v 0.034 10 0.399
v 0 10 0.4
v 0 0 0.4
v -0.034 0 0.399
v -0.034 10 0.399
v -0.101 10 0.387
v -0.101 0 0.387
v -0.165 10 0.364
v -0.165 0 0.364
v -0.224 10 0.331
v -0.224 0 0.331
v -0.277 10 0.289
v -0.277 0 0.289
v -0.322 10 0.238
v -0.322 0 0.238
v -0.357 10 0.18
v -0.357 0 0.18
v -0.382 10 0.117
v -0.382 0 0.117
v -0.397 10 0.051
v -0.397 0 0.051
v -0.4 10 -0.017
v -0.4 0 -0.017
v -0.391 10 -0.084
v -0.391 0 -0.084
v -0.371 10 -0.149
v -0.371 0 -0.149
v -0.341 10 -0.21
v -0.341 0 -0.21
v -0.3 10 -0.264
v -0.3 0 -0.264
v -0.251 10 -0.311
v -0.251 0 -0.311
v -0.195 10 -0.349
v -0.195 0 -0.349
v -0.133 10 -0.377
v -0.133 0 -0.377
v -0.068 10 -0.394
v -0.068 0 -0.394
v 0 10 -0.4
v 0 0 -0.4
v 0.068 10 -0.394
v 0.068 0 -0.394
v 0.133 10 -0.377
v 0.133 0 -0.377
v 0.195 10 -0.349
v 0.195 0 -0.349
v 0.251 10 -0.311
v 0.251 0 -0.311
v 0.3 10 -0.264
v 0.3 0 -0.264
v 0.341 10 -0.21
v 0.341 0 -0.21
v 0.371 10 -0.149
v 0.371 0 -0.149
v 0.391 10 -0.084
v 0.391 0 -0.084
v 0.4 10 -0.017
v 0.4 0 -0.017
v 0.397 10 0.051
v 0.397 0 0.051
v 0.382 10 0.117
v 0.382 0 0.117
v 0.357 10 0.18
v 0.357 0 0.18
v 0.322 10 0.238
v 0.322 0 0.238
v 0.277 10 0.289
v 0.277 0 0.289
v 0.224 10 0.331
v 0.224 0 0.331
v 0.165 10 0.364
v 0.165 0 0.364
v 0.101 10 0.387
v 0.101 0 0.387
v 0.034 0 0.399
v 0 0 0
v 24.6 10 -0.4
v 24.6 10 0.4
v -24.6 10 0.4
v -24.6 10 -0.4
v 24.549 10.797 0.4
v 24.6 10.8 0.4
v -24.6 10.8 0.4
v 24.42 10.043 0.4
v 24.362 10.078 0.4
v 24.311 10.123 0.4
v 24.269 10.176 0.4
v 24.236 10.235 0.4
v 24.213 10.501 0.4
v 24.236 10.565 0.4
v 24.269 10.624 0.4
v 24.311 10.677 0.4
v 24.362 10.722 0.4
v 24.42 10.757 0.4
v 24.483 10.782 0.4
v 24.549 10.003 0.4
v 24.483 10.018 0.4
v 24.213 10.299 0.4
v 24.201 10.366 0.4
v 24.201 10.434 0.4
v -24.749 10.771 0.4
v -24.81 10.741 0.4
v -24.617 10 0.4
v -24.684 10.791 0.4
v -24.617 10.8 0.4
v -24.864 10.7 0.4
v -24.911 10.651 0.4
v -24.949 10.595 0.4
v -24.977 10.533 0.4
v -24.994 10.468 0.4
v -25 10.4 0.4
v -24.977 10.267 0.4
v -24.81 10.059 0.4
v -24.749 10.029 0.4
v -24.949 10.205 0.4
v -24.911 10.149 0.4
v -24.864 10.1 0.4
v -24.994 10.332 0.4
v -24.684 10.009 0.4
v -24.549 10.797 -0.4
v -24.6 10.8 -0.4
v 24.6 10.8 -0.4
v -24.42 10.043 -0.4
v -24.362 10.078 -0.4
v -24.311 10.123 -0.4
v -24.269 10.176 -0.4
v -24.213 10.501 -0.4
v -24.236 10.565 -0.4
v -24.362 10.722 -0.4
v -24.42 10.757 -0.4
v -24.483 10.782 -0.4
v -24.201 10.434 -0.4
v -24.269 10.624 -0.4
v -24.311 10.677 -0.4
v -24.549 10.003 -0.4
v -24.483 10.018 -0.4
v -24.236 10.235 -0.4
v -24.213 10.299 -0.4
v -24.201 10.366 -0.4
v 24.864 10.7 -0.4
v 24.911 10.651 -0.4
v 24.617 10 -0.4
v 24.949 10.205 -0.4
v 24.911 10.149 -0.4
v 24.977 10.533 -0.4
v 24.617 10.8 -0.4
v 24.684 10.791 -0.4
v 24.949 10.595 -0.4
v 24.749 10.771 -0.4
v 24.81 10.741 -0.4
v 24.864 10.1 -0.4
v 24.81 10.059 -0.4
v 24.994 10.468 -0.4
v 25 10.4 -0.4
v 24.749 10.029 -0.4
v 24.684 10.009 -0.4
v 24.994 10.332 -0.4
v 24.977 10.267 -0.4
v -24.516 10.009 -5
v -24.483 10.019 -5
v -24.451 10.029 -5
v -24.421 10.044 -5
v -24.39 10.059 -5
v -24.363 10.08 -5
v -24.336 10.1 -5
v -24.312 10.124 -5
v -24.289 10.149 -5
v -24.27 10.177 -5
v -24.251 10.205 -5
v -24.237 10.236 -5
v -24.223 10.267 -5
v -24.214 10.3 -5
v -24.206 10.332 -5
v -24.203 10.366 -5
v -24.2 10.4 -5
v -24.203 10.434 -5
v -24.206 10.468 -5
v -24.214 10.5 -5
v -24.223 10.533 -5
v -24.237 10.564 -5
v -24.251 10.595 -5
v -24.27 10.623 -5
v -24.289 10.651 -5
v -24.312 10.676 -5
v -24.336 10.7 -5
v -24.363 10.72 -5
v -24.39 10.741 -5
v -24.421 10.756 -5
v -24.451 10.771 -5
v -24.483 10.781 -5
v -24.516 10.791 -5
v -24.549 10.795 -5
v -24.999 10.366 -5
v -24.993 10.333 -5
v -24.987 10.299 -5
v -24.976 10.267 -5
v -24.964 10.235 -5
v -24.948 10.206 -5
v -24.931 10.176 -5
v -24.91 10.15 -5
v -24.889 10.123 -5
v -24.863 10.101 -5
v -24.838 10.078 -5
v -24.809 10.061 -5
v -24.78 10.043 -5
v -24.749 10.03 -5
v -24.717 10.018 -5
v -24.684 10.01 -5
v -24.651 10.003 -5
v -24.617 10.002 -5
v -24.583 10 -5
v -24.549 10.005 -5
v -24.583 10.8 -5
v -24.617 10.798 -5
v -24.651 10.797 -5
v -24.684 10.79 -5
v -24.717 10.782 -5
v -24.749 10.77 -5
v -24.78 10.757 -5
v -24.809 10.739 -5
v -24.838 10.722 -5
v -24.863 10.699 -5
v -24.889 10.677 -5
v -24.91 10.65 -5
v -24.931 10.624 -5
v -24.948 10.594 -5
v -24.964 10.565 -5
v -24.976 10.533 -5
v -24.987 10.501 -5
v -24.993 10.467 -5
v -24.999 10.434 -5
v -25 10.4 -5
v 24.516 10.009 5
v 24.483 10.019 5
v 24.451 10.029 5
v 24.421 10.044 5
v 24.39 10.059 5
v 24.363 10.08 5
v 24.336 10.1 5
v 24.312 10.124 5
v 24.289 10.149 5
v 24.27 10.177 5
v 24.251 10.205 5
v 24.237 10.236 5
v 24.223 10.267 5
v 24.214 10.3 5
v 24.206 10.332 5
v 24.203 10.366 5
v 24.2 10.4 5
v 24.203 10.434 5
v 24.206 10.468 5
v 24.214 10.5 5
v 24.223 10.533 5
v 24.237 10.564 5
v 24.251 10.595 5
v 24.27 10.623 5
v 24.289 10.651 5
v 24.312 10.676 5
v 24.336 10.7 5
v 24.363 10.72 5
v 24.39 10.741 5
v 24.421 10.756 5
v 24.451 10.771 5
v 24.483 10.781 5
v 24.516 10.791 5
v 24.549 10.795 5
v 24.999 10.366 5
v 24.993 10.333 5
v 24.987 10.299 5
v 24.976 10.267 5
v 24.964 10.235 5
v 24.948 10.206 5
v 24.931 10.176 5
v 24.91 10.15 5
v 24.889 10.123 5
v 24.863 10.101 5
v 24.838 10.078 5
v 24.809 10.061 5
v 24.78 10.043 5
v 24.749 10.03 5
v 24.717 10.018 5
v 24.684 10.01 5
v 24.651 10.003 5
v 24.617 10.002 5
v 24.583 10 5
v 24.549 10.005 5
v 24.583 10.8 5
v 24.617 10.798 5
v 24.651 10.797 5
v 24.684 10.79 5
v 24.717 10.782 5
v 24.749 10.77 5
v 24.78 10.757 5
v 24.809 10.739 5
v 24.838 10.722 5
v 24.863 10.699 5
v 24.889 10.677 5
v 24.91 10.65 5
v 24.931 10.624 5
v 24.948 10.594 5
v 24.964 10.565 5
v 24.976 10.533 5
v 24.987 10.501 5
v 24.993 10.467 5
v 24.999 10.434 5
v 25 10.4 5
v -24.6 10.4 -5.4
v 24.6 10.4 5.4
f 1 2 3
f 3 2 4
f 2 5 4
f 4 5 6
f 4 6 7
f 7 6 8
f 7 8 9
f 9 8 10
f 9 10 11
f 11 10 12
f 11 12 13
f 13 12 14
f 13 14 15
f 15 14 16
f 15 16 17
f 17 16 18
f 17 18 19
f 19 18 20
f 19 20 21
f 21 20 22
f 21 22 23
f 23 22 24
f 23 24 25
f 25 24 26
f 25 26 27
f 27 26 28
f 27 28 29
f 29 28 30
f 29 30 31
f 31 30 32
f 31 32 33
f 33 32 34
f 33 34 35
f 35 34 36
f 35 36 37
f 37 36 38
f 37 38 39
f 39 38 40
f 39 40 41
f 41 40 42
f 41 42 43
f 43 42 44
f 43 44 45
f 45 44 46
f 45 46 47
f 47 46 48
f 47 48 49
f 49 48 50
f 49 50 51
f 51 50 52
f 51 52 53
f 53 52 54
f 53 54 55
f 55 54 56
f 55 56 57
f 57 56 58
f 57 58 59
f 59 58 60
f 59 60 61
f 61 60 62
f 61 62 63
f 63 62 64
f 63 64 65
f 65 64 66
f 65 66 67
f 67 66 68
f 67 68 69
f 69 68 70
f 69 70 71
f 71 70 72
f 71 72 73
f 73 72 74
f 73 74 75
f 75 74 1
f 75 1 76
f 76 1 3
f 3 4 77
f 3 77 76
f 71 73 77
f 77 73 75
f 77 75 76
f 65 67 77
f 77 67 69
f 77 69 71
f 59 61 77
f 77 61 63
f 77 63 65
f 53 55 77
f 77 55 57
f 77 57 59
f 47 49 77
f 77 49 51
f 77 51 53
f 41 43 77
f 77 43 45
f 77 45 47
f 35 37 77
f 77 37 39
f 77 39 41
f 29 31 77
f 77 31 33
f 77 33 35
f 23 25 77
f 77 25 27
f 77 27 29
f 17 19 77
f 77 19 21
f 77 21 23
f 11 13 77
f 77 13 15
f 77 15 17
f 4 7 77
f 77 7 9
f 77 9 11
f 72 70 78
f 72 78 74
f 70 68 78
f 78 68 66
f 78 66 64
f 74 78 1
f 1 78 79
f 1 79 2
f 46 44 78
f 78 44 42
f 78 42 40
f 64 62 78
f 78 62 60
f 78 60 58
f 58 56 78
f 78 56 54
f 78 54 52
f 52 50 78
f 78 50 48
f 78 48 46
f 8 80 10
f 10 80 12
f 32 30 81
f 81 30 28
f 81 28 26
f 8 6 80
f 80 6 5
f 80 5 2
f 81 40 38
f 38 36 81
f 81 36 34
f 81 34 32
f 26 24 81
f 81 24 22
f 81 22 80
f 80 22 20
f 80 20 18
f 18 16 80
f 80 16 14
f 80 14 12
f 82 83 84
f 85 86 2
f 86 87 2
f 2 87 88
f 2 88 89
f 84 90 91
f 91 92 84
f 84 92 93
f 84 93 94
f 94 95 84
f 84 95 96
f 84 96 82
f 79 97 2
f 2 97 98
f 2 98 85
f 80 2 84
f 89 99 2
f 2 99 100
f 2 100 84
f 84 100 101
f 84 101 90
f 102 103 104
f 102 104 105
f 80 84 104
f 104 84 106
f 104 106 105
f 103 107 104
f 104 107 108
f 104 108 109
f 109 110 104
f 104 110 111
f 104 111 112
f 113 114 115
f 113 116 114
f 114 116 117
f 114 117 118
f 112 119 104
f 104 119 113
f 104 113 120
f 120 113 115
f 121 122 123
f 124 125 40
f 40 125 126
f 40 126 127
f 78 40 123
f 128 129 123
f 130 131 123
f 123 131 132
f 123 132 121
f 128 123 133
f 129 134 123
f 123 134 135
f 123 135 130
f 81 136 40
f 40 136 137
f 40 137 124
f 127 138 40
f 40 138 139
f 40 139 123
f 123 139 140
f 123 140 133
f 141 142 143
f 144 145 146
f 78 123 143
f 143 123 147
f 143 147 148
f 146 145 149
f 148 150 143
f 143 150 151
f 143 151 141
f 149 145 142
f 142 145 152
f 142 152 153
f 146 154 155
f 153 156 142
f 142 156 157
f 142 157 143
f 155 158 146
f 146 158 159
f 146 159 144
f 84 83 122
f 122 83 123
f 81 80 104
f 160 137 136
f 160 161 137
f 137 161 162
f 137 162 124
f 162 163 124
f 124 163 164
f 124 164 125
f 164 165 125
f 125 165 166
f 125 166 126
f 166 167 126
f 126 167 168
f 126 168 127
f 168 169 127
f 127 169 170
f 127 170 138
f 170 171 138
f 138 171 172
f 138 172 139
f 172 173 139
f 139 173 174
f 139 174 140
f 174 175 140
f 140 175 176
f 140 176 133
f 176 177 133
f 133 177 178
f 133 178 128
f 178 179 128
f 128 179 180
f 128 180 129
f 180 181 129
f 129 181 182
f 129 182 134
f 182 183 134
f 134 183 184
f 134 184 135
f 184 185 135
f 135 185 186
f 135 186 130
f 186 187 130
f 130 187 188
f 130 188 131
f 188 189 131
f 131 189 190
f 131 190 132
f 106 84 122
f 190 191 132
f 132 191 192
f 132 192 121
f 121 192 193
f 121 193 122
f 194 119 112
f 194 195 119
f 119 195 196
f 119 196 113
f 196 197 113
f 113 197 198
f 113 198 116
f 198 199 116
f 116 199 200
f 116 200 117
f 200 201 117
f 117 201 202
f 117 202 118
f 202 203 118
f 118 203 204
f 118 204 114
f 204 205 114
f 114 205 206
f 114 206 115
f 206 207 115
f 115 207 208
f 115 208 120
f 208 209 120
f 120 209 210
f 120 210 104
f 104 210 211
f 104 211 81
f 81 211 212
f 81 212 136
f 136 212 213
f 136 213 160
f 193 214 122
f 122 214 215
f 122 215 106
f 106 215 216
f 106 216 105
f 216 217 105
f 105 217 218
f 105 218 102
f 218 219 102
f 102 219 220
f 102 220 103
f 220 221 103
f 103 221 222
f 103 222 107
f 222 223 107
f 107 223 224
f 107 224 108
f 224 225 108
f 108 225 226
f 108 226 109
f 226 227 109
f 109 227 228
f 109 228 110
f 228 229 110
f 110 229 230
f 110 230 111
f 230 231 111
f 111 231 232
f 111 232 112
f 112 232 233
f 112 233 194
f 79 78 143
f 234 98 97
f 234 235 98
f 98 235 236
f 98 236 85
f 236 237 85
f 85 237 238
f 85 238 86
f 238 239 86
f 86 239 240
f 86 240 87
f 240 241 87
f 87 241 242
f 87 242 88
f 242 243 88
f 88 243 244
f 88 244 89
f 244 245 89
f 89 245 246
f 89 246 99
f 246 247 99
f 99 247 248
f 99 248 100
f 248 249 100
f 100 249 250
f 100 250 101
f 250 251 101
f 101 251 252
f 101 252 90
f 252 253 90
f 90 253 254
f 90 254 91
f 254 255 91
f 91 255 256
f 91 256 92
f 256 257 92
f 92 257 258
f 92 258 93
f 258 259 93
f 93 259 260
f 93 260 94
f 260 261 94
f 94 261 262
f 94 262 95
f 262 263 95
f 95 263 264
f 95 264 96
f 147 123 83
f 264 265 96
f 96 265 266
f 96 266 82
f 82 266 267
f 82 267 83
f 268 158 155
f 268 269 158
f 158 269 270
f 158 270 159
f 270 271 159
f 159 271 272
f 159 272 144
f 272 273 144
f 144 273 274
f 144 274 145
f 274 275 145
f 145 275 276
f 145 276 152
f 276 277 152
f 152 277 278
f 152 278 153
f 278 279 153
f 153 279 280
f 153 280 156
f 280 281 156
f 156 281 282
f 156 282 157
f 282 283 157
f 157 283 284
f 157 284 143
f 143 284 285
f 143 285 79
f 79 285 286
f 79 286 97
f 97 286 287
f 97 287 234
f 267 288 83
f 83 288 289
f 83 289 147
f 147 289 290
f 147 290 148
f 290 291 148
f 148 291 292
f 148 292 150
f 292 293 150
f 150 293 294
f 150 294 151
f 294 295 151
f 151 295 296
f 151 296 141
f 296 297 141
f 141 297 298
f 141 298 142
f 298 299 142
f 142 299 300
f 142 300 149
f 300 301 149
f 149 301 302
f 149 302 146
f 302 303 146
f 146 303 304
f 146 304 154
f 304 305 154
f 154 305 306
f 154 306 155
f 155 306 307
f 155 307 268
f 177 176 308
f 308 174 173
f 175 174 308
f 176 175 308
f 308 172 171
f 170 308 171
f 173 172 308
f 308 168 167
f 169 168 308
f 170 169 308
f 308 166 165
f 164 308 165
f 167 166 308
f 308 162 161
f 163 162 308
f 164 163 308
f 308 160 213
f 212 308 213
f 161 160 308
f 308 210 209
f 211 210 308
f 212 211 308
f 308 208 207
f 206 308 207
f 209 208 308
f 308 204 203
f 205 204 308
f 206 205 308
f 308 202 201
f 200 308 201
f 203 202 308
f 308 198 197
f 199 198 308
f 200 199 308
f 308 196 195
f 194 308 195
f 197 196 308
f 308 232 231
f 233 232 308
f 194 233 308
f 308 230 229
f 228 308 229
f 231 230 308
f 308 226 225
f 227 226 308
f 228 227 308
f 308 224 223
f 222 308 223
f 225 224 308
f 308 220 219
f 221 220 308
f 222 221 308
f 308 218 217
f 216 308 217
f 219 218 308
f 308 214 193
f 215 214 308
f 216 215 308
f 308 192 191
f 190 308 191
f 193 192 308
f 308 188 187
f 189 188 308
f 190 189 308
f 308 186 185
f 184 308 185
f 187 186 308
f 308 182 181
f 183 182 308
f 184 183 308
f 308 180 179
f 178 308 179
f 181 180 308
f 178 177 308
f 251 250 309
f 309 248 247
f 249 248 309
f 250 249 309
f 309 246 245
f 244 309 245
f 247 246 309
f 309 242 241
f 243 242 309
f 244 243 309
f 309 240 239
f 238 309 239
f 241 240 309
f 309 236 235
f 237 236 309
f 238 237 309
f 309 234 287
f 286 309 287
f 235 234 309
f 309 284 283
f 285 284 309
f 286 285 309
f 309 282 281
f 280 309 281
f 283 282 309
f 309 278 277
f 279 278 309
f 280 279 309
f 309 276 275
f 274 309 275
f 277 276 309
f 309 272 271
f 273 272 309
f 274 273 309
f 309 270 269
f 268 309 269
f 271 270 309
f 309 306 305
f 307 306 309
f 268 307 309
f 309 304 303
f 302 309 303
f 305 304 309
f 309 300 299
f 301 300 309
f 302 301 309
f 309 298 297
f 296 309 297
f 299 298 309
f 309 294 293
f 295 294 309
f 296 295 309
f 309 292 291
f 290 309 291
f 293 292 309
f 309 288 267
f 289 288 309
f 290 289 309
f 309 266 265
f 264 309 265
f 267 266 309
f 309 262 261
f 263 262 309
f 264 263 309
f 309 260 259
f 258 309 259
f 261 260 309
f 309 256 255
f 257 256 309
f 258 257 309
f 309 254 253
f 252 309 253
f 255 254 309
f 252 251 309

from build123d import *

# Parameters (mm, degrees)
SKETCH_1_R      = 0.4
EXTRUDE_1_DEPTH = 10
SKETCH_2_W      = 50
SKETCH_2_H      = 0.8
EXTRUDE_2_DEPTH = 0.8
FILLET_1_R      = 0.4
SKETCH_3_R      = 0.4
EXTRUDE_3_DEPTH = 5
SKETCH_4_R      = 0.4
EXTRUDE_4_DEPTH = 5
CHAMFER_1_SIZE  = 0.4


with BuildPart() as part:
    # 草图1 → 凸台-拉伸1 (new body)
    with BuildSketch(Plane(origin=(0, 0, 0), x_dir=(1, 0, 0), z_dir=(0, 1, 0))):
        with Locations(Location((0, 0, 0), (0, 0, 270))):
            Circle(SKETCH_1_R)
    extrude(amount=EXTRUDE_1_DEPTH)

    # 草图2 → 凸台-拉伸2 (add)
    with BuildSketch(Plane(origin=(0, 10, 0), x_dir=(1, 0, 0), z_dir=(0, 1, 0))):
        Rectangle(SKETCH_2_W, SKETCH_2_H)
    extrude(amount=EXTRUDE_2_DEPTH)

    # 圆角1
    fillet_1_edges = [part.edges().sort_by_distance(p)[0] for p in [
        (25, 10, 0),
        (25, 10.8, 0),
        (-25, 10, 0),
        (-25, 10.8, 0),
    ]]
    fillet(fillet_1_edges, radius=FILLET_1_R - 0.0001)  # a hair under: the kernel refuses the full size

    # 草图3 → 凸台-拉伸3 (add)
    with BuildSketch(Plane.XY.offset(0.4)):
        with Locations((24.6, 10.4)):
            Circle(SKETCH_3_R)
    extrude(amount=EXTRUDE_3_DEPTH)

    # 草图4 → 凸台-拉伸4 (add)
    with BuildSketch(Plane(origin=(0, 0, -0.4), x_dir=(-1, 0, 0), z_dir=(0, 0, -1))):
        with Locations((24.6, 10.4)):
            Circle(SKETCH_4_R)
    extrude(amount=EXTRUDE_4_DEPTH)

    # 倒角1
    chamfer_1_edges = [part.edges().sort_by_distance(p)[0] for p in [
        (24.2, 10.4, 5.4),
        (-24.2, 10.4, -5.4),
    ]]
    chamfer(chamfer_1_edges, length=CHAMFER_1_SIZE)


solid = part.part
